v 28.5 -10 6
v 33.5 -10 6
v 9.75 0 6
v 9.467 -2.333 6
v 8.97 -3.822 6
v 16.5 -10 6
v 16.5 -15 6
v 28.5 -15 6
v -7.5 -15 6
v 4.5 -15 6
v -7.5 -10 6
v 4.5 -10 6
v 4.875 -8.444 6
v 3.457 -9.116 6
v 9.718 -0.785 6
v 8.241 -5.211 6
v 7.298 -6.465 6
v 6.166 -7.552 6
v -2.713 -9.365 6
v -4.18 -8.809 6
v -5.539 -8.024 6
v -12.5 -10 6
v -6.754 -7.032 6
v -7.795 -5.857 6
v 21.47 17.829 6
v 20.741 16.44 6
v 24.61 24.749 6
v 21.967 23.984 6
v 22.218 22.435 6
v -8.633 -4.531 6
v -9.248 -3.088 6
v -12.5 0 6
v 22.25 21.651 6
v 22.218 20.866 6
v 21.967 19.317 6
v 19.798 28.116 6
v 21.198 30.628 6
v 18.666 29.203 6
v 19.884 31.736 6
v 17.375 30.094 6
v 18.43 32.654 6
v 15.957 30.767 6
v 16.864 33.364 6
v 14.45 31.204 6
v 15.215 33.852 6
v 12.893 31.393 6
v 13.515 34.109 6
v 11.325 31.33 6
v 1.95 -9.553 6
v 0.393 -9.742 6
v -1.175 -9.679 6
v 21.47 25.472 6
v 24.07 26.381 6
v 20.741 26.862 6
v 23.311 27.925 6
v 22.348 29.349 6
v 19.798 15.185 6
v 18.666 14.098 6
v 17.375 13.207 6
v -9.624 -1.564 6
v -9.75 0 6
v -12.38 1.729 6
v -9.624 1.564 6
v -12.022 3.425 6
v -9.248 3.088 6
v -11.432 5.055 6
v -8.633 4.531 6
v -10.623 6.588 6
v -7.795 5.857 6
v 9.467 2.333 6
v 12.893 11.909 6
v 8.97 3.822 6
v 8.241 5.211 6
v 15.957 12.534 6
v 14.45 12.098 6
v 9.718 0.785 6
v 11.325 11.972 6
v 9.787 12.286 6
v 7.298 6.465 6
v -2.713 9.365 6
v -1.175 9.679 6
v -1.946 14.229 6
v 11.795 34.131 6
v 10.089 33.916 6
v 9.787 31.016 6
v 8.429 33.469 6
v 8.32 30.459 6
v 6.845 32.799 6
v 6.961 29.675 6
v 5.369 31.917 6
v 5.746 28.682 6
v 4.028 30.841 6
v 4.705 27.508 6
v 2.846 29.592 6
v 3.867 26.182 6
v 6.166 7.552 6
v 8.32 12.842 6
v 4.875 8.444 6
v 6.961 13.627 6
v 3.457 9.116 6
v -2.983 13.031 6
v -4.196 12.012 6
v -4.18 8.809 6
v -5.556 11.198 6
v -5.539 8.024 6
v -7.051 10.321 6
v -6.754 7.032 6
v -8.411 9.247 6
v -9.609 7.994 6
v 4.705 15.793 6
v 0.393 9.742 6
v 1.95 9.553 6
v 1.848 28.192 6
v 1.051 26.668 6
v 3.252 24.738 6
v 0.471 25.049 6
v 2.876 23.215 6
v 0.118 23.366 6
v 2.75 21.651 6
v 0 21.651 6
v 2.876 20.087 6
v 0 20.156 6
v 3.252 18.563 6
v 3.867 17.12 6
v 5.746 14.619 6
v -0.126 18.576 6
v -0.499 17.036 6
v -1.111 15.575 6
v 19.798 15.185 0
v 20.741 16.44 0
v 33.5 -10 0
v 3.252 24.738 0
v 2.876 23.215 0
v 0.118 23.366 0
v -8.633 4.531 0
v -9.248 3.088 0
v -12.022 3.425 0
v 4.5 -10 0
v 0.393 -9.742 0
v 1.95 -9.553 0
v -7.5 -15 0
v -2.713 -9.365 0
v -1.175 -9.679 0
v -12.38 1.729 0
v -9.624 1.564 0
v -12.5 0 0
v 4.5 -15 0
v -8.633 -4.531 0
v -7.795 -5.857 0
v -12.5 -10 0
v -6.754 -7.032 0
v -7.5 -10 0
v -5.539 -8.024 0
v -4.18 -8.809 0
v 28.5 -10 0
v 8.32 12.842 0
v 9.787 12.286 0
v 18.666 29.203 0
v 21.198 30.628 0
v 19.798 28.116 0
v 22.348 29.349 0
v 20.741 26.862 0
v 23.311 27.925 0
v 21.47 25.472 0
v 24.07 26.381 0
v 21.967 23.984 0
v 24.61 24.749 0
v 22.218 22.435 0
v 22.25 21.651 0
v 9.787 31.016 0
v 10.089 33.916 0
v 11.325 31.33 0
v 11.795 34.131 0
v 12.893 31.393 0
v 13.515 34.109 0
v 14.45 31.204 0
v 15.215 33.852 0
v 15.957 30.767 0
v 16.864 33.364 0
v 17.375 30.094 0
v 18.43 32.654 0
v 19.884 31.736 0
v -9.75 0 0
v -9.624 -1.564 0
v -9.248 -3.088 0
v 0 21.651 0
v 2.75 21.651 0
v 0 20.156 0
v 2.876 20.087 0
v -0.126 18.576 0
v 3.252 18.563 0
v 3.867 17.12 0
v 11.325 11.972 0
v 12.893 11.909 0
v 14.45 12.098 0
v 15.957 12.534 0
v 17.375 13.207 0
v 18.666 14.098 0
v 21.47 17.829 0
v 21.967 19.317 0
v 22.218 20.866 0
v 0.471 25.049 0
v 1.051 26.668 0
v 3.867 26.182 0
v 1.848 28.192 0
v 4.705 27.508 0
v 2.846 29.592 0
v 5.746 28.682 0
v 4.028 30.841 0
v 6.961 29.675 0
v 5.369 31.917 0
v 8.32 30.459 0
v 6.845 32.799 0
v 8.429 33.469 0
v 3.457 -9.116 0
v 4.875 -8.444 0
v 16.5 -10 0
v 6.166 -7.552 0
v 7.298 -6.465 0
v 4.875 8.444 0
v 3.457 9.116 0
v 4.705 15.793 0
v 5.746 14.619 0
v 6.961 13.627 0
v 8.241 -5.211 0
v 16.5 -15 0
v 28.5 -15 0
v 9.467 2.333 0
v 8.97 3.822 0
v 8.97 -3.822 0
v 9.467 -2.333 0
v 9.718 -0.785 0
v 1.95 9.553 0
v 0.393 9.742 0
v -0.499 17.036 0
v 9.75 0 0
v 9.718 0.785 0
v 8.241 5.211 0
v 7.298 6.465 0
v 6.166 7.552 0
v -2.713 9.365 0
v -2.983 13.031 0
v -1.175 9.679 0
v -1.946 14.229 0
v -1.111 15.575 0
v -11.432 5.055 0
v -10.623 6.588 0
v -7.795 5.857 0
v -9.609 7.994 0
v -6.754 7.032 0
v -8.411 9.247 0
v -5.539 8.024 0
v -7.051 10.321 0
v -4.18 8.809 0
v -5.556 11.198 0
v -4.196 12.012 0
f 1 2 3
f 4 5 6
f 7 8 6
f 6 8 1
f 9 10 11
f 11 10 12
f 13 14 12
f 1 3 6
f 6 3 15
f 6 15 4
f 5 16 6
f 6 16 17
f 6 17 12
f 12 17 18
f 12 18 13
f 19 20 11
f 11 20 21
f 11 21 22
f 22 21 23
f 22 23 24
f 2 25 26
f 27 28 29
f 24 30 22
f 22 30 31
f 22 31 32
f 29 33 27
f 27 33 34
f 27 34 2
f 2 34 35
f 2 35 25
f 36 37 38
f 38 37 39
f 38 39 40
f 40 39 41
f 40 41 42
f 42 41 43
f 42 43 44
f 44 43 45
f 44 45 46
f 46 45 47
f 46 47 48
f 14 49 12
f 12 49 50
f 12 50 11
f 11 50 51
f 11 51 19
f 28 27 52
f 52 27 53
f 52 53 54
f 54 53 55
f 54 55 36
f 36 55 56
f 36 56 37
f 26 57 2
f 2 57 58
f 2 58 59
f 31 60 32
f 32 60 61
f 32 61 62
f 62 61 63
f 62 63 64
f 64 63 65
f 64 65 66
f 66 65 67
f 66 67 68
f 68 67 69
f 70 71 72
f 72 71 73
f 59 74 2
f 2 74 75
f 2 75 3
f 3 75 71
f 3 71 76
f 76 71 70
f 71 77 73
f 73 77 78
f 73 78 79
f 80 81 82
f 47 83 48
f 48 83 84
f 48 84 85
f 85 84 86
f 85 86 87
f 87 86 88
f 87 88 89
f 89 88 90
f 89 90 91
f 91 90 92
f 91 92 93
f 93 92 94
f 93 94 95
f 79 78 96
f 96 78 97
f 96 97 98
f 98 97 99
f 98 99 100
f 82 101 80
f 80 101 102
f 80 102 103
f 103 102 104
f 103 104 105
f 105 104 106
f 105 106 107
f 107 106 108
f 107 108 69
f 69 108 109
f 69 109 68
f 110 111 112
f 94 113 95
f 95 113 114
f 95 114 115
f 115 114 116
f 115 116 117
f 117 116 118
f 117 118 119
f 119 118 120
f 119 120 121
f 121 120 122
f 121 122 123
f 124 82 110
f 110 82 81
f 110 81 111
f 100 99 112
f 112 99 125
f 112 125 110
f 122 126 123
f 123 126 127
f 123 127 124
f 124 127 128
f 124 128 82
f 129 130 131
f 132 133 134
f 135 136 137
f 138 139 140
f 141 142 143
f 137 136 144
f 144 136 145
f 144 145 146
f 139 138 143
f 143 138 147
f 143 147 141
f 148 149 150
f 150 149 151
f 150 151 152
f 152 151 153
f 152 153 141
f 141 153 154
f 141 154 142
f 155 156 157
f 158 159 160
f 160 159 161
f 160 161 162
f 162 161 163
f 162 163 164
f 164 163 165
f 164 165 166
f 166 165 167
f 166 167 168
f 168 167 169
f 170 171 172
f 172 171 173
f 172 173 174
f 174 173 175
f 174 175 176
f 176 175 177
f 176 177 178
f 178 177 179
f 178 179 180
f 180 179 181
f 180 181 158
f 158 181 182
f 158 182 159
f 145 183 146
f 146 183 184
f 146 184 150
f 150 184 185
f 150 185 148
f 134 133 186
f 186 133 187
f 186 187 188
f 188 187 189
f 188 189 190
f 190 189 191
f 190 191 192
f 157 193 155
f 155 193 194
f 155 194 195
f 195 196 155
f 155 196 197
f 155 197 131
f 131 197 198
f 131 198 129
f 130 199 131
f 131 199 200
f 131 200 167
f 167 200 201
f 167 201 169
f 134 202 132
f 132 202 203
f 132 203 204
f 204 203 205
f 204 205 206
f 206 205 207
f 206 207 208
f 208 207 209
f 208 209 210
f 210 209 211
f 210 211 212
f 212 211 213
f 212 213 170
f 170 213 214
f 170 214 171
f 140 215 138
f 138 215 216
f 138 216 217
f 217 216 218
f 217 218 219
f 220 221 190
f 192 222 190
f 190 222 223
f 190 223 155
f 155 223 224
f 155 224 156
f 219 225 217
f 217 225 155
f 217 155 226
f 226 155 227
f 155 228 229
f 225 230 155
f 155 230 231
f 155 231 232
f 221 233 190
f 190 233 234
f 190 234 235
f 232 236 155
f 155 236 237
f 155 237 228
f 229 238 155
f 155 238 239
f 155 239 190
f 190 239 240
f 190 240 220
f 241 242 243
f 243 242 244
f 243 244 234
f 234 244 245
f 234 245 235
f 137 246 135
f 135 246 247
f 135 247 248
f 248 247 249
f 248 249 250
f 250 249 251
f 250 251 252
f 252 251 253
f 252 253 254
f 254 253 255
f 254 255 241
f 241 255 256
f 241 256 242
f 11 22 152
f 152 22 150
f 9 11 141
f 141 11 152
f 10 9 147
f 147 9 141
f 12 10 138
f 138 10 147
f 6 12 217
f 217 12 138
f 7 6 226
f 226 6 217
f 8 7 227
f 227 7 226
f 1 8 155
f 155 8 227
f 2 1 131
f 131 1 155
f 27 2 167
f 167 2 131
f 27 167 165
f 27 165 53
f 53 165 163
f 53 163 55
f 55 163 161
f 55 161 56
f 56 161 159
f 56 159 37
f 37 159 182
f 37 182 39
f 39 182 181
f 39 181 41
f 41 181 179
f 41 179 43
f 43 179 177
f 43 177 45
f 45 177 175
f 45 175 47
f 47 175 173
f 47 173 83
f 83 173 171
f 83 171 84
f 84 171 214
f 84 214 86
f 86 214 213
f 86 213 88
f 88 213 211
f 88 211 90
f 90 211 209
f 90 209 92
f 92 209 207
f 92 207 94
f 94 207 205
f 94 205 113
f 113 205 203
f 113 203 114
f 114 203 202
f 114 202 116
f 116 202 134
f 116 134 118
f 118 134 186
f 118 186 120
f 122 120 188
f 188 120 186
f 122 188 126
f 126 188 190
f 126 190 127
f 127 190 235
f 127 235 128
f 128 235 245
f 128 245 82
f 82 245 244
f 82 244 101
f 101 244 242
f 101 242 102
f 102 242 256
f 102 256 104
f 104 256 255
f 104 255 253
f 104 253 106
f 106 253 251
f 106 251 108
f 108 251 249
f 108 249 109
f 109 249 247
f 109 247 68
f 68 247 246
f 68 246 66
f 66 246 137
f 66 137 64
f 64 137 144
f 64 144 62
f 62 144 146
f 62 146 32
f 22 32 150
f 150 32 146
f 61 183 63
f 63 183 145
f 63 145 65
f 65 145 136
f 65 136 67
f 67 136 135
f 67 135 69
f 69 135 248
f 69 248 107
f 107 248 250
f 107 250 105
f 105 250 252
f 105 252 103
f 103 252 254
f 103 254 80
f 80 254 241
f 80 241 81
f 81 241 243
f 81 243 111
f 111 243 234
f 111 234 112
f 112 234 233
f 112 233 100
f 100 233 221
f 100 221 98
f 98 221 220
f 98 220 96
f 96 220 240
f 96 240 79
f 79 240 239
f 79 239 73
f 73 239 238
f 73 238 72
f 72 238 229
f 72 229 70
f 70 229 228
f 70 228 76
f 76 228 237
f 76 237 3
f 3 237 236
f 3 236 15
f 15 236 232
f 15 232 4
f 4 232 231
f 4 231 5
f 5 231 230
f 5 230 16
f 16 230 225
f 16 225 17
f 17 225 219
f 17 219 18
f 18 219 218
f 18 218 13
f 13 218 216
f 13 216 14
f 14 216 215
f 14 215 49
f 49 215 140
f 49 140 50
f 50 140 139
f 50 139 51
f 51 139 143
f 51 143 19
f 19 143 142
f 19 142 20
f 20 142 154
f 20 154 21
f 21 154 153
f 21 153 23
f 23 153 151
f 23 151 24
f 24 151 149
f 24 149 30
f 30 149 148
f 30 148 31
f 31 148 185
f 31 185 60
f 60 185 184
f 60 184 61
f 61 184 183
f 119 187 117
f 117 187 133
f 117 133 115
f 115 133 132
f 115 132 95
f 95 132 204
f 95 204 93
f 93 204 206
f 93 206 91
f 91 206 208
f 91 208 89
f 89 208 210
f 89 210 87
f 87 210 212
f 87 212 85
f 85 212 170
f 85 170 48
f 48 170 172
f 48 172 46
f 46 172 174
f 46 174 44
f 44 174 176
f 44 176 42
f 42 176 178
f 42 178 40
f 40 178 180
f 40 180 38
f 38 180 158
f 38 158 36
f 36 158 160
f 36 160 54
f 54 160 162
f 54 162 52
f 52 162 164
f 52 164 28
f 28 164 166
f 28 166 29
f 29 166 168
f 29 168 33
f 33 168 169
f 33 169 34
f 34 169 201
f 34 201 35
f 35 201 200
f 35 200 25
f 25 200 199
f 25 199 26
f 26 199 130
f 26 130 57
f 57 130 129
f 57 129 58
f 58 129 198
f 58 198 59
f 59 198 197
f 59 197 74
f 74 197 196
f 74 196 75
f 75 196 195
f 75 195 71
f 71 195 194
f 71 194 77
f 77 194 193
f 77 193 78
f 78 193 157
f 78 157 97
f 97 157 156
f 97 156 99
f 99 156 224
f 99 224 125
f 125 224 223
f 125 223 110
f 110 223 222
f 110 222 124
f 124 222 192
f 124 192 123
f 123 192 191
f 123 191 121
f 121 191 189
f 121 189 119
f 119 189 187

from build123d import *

# Parameters (mm, degrees)
CROQUIS1_R              = 9.75
SALIENTE_EXTRUIR1_DEPTH = 6


with BuildPart() as part:
    # Croquis1 → Saliente-Extruir1 (new body)
    with BuildSketch(Plane.XY):
        with BuildLine():
            Line((-12.5, 0), (-12.5, -10))
            Line((-12.5, -10), (-7.5, -10))
            Line((-7.5, -10), (-7.5, -15))
            Line((-7.5, -15), (4.5, -15))
            Line((4.5, -15), (4.5, -10))
            Line((4.5, -10), (16.5, -10))
            Line((16.5, -10), (16.5, -15))
            Line((16.5, -15), (28.5, -15))
            Line((28.5, -15), (28.5, -10))
            Line((28.5, -10), (33.5, -10))
            Line((33.5, -10), (24.60996669, 24.748813068))
            ThreePointArc((24.60996669, 24.748813068), (10.938683829, 34.052743456), (0, 21.650635095))
            Line((0, 21.650635095), (0, 20.155644371))
            ThreePointArc((0, 20.155644371), (-1.501634144, 14.885181604), (-5.555555556, 11.197580206))
            ThreePointArc((-5.555555556, 11.197580206), (-10.62295732, 6.588078459), (-12.5, 0))
        make_face()
        Circle(CROQUIS1_R, mode=Mode.SUBTRACT)
        with Locations((12.5, 21.650635095)):
            Circle(CROQUIS1_R, mode=Mode.SUBTRACT)
    extrude(amount=SALIENTE_EXTRUIR1_DEPTH)


solid = part.part
